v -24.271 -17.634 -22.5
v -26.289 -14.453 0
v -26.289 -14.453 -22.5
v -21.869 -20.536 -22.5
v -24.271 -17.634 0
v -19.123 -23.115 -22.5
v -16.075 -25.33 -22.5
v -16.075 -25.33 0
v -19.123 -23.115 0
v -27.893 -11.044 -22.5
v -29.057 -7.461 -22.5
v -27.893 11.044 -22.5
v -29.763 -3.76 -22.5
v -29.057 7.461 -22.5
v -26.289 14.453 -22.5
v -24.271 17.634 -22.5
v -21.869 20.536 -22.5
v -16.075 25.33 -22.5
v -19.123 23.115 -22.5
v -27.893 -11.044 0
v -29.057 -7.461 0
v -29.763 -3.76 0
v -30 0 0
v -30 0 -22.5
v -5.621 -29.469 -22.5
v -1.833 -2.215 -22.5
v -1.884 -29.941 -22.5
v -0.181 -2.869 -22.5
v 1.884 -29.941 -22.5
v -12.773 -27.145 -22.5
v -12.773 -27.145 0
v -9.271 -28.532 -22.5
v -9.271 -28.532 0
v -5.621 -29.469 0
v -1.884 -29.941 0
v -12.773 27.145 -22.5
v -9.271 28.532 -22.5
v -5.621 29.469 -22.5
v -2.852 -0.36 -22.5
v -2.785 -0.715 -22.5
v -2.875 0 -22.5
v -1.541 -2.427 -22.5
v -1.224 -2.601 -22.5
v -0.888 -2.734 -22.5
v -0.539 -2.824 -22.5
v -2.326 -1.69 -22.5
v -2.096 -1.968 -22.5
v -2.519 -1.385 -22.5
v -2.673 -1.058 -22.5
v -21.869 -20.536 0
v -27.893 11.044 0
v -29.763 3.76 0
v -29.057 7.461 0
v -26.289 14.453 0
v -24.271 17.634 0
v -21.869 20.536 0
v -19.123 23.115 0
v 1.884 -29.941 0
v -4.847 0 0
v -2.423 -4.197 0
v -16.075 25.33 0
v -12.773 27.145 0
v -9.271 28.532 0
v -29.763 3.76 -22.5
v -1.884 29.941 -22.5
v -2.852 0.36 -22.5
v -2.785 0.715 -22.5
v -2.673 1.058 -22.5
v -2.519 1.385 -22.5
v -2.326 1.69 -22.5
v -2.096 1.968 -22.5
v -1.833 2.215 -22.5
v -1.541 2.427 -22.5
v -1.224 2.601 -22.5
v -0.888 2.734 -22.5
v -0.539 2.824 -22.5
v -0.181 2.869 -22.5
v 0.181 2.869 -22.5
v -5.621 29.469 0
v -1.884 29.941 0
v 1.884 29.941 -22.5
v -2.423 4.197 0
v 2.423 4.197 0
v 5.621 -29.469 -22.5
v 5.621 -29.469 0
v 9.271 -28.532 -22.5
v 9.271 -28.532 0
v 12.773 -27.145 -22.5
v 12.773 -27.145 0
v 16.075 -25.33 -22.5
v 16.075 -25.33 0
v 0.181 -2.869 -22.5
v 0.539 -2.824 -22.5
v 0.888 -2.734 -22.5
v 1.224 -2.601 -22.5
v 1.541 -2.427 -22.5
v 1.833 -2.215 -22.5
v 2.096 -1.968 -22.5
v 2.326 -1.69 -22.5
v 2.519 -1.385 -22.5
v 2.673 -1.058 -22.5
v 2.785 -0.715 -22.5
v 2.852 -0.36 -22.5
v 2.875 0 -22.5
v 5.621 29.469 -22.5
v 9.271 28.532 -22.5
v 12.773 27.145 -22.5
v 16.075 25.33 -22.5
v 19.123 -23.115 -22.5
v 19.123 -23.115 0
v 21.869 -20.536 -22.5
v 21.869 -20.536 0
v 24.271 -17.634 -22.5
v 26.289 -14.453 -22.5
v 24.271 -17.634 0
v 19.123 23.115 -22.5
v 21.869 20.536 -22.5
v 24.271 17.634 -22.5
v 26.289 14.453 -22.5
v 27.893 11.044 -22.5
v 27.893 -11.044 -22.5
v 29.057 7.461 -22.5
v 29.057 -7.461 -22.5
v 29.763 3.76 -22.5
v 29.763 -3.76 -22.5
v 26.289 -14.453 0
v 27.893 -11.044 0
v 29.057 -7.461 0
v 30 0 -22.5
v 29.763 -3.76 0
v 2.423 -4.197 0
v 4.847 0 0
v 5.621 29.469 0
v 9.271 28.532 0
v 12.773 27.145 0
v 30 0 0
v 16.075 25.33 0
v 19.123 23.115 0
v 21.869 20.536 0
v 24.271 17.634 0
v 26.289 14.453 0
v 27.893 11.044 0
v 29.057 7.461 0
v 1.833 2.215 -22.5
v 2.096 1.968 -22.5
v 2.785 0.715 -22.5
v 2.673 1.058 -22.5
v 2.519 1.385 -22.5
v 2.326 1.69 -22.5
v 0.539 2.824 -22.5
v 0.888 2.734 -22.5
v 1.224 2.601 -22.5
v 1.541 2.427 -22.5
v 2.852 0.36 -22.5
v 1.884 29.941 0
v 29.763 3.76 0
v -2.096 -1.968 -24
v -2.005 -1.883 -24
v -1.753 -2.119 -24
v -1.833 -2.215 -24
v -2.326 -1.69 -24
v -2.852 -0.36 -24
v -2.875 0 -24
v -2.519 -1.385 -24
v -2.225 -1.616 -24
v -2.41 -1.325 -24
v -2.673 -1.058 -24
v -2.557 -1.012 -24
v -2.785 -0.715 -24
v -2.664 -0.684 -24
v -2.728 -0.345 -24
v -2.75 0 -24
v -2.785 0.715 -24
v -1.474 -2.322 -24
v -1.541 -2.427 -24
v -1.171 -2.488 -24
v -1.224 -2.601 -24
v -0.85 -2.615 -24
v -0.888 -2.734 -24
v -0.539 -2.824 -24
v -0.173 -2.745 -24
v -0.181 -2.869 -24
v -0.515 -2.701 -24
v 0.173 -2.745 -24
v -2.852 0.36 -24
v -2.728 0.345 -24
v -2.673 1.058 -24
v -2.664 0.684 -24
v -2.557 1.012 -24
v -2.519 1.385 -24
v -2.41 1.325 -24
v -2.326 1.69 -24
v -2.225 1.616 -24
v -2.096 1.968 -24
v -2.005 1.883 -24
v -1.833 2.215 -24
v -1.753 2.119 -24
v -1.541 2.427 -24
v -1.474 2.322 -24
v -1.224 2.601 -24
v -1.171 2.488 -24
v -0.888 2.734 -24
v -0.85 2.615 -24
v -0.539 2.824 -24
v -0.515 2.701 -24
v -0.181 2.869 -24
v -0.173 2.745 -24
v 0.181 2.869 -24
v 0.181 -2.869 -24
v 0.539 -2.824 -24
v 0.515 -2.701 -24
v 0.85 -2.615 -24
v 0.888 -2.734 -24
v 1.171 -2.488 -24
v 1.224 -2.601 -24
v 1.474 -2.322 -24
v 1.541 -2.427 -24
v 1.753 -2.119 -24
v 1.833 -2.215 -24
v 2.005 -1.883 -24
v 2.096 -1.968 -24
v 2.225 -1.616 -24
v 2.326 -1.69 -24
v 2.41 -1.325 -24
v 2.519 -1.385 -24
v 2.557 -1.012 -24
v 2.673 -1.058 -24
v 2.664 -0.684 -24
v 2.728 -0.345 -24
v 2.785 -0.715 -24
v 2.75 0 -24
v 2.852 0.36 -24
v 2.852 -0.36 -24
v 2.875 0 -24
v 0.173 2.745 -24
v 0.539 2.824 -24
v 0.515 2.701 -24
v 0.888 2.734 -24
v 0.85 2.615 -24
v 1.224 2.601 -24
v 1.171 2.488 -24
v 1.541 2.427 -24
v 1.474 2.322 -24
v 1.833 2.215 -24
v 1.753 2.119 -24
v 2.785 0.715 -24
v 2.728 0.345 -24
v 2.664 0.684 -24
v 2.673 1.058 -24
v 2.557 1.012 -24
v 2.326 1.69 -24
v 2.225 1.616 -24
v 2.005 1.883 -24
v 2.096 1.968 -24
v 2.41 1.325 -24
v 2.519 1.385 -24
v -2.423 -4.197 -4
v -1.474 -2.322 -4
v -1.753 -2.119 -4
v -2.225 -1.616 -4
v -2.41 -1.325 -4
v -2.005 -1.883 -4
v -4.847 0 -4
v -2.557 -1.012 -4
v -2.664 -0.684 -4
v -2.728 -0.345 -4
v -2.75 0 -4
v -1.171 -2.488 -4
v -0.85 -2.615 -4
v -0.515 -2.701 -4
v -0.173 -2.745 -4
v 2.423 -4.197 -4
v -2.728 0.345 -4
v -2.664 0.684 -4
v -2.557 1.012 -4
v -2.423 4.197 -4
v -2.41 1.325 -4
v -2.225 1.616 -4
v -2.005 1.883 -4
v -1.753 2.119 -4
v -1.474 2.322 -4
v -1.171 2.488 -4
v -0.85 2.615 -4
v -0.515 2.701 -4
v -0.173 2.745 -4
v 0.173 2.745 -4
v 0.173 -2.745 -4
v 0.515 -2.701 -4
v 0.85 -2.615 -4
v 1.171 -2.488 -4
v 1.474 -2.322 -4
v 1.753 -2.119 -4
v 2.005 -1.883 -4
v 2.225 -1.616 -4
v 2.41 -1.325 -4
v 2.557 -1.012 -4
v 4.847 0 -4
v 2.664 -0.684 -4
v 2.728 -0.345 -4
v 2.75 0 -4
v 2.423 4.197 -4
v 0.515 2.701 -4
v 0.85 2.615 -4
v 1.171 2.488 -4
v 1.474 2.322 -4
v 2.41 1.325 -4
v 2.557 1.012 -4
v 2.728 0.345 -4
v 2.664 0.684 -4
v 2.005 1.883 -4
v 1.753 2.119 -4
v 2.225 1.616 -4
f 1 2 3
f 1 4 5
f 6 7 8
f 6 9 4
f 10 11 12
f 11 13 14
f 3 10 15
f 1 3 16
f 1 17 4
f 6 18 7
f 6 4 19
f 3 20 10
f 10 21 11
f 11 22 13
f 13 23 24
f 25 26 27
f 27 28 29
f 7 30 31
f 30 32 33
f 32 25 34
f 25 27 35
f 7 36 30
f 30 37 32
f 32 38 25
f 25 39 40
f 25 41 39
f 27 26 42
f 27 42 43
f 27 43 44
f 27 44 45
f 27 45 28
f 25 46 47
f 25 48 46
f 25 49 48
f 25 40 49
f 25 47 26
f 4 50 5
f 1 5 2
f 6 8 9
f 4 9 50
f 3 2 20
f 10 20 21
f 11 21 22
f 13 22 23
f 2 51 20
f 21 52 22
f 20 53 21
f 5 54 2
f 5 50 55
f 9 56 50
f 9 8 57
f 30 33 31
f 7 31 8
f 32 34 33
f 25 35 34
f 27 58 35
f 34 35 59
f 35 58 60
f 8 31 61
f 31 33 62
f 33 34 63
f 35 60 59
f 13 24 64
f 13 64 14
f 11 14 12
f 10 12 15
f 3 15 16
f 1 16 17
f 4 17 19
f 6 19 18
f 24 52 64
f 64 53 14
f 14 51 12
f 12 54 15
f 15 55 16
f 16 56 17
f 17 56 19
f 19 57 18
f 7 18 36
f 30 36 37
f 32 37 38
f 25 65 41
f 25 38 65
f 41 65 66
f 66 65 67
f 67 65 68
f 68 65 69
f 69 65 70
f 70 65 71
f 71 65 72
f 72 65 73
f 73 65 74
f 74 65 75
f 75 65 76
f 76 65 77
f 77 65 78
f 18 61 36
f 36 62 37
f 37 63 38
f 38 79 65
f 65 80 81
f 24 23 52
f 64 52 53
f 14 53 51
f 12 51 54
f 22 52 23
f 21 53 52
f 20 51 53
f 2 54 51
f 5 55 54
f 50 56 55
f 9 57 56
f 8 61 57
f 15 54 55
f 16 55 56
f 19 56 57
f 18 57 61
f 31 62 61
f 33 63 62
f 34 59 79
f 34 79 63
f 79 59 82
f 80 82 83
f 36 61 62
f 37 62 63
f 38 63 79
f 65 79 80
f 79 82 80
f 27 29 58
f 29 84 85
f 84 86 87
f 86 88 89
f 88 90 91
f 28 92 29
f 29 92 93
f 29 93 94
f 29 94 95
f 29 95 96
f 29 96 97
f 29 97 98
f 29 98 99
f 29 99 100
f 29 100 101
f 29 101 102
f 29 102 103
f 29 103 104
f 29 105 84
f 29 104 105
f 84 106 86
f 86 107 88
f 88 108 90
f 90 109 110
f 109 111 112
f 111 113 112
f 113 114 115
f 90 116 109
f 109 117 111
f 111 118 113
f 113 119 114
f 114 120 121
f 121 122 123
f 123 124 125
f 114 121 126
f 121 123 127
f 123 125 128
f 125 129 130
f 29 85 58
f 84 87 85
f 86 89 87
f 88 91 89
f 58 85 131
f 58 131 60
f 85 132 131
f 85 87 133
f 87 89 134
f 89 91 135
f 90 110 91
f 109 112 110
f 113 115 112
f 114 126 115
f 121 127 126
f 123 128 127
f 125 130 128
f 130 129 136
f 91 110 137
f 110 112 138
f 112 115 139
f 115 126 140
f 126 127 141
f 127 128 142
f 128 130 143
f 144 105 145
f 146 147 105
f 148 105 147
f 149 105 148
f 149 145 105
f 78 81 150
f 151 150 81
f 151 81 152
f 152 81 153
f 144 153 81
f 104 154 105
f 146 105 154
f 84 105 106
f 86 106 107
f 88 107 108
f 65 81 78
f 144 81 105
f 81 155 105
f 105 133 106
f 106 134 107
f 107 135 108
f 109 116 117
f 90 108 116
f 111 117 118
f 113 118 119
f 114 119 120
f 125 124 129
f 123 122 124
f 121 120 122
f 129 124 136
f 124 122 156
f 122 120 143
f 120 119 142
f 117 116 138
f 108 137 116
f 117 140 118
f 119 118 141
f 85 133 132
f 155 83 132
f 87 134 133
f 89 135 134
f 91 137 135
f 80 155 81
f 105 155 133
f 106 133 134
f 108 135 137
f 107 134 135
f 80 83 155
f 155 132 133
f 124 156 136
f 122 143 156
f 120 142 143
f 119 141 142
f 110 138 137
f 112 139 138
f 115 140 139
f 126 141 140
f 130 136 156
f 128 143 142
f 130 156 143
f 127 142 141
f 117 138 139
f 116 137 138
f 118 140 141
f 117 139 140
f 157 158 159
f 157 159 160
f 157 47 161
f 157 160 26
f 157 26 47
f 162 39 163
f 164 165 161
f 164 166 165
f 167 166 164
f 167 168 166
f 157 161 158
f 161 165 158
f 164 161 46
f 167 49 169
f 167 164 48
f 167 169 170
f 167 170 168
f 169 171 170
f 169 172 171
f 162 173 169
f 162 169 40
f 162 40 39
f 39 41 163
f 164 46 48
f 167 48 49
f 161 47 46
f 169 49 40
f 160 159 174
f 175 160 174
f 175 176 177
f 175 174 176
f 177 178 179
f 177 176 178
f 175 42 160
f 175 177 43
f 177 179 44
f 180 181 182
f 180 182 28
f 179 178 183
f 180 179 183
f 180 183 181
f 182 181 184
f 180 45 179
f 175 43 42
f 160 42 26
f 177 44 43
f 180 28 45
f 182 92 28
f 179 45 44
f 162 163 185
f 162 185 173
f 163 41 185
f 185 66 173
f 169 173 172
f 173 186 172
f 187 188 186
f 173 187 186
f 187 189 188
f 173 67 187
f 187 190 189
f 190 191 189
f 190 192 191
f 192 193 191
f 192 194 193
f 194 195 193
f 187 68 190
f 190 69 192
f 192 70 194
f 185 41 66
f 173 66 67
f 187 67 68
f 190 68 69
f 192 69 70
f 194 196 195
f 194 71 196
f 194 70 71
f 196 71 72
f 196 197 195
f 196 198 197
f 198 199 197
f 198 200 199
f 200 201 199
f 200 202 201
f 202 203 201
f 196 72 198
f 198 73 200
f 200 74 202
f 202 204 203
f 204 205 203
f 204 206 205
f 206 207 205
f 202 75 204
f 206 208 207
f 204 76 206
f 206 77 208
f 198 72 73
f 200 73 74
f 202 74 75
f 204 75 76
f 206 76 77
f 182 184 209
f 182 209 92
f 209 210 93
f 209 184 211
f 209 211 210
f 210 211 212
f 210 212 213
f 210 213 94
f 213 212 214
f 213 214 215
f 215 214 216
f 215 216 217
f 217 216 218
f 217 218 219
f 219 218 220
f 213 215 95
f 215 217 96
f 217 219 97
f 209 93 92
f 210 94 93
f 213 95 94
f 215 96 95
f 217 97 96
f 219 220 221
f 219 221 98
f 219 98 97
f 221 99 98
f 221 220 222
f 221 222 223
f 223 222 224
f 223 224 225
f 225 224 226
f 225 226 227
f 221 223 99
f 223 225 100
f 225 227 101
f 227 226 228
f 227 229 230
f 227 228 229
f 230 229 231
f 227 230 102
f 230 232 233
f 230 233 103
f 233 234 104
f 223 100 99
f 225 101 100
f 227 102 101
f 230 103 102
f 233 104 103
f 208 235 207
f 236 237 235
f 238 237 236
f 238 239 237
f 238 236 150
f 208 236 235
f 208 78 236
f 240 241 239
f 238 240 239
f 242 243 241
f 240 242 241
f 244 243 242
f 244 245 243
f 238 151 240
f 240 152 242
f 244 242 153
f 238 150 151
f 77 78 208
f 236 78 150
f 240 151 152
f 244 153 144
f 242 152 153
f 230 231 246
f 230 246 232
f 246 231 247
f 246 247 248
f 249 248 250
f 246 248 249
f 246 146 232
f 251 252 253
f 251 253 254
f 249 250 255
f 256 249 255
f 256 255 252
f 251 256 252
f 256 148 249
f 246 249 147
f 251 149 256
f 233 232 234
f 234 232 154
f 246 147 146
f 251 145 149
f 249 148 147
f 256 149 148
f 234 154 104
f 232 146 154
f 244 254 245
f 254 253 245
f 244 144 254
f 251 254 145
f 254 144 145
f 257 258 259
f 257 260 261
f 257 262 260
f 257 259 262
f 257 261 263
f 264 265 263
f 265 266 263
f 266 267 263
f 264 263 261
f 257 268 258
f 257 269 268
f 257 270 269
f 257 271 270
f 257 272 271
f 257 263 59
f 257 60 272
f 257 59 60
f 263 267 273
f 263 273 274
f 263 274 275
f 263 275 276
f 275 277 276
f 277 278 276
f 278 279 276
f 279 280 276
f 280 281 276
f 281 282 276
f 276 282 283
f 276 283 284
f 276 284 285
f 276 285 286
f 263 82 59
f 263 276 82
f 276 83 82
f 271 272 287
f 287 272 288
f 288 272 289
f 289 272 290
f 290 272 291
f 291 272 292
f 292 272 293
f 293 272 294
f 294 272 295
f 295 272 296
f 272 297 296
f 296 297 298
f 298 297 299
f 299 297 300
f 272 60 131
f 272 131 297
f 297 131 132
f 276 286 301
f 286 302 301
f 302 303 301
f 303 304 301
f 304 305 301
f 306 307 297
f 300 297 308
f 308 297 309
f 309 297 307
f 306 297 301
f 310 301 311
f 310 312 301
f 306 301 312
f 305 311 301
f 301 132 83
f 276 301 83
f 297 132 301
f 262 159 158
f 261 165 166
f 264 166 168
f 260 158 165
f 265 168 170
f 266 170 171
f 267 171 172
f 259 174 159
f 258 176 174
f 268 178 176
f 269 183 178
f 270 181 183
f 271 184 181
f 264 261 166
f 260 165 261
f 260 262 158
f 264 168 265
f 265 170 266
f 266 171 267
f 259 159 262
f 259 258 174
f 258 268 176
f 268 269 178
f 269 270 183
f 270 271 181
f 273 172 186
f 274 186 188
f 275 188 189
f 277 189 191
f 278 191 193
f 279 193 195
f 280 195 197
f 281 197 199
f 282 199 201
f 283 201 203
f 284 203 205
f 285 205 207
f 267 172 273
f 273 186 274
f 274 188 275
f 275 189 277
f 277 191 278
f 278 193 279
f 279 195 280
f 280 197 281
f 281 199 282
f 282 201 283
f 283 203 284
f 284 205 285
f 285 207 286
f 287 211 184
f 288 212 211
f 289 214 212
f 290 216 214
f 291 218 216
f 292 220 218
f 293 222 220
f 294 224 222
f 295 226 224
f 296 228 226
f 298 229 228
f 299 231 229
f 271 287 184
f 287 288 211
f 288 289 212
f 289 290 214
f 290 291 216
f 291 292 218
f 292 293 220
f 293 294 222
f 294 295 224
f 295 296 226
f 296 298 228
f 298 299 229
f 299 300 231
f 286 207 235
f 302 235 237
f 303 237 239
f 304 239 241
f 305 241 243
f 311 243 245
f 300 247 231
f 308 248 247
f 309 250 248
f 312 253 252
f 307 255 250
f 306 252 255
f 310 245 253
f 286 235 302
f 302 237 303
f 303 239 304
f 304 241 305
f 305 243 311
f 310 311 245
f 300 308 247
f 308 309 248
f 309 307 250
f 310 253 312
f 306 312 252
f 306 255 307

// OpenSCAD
$fn = 50;

difference() {
	union() {
		translate(v = [0, 0, -22.5]) {
			cylinder(h = 22.5, r = 30.0);
		}
		#translate(v = [0, 0, -24.0]) {
			cylinder(h = 24, r = 2.875);
		}
	}
	union() {
		translate(v = [0, 0, 0]) {
			rotate(a = [0, 0, 0]) {
				difference() {
					union() {
						translate(v = [0, 0, -4]) {
							linear_extrude(height = 4) {
								polygon(points = [[4.8468, 0.0], [2.4234000000000004, 4.197451927062417], [-2.423399999999999, 4.197451927062417], [-4.8468, 5.935618106107392e-16], [-2.423400000000002, -4.197451927062416], [2.423399999999997, -4.197451927062419]]);
							}
						}
					}
					union();
				}
			}
		}
		#translate(v = [0, 0, -100.0]) {
			cylinder(h = 200, r = 2.75);
		}
	}
}
